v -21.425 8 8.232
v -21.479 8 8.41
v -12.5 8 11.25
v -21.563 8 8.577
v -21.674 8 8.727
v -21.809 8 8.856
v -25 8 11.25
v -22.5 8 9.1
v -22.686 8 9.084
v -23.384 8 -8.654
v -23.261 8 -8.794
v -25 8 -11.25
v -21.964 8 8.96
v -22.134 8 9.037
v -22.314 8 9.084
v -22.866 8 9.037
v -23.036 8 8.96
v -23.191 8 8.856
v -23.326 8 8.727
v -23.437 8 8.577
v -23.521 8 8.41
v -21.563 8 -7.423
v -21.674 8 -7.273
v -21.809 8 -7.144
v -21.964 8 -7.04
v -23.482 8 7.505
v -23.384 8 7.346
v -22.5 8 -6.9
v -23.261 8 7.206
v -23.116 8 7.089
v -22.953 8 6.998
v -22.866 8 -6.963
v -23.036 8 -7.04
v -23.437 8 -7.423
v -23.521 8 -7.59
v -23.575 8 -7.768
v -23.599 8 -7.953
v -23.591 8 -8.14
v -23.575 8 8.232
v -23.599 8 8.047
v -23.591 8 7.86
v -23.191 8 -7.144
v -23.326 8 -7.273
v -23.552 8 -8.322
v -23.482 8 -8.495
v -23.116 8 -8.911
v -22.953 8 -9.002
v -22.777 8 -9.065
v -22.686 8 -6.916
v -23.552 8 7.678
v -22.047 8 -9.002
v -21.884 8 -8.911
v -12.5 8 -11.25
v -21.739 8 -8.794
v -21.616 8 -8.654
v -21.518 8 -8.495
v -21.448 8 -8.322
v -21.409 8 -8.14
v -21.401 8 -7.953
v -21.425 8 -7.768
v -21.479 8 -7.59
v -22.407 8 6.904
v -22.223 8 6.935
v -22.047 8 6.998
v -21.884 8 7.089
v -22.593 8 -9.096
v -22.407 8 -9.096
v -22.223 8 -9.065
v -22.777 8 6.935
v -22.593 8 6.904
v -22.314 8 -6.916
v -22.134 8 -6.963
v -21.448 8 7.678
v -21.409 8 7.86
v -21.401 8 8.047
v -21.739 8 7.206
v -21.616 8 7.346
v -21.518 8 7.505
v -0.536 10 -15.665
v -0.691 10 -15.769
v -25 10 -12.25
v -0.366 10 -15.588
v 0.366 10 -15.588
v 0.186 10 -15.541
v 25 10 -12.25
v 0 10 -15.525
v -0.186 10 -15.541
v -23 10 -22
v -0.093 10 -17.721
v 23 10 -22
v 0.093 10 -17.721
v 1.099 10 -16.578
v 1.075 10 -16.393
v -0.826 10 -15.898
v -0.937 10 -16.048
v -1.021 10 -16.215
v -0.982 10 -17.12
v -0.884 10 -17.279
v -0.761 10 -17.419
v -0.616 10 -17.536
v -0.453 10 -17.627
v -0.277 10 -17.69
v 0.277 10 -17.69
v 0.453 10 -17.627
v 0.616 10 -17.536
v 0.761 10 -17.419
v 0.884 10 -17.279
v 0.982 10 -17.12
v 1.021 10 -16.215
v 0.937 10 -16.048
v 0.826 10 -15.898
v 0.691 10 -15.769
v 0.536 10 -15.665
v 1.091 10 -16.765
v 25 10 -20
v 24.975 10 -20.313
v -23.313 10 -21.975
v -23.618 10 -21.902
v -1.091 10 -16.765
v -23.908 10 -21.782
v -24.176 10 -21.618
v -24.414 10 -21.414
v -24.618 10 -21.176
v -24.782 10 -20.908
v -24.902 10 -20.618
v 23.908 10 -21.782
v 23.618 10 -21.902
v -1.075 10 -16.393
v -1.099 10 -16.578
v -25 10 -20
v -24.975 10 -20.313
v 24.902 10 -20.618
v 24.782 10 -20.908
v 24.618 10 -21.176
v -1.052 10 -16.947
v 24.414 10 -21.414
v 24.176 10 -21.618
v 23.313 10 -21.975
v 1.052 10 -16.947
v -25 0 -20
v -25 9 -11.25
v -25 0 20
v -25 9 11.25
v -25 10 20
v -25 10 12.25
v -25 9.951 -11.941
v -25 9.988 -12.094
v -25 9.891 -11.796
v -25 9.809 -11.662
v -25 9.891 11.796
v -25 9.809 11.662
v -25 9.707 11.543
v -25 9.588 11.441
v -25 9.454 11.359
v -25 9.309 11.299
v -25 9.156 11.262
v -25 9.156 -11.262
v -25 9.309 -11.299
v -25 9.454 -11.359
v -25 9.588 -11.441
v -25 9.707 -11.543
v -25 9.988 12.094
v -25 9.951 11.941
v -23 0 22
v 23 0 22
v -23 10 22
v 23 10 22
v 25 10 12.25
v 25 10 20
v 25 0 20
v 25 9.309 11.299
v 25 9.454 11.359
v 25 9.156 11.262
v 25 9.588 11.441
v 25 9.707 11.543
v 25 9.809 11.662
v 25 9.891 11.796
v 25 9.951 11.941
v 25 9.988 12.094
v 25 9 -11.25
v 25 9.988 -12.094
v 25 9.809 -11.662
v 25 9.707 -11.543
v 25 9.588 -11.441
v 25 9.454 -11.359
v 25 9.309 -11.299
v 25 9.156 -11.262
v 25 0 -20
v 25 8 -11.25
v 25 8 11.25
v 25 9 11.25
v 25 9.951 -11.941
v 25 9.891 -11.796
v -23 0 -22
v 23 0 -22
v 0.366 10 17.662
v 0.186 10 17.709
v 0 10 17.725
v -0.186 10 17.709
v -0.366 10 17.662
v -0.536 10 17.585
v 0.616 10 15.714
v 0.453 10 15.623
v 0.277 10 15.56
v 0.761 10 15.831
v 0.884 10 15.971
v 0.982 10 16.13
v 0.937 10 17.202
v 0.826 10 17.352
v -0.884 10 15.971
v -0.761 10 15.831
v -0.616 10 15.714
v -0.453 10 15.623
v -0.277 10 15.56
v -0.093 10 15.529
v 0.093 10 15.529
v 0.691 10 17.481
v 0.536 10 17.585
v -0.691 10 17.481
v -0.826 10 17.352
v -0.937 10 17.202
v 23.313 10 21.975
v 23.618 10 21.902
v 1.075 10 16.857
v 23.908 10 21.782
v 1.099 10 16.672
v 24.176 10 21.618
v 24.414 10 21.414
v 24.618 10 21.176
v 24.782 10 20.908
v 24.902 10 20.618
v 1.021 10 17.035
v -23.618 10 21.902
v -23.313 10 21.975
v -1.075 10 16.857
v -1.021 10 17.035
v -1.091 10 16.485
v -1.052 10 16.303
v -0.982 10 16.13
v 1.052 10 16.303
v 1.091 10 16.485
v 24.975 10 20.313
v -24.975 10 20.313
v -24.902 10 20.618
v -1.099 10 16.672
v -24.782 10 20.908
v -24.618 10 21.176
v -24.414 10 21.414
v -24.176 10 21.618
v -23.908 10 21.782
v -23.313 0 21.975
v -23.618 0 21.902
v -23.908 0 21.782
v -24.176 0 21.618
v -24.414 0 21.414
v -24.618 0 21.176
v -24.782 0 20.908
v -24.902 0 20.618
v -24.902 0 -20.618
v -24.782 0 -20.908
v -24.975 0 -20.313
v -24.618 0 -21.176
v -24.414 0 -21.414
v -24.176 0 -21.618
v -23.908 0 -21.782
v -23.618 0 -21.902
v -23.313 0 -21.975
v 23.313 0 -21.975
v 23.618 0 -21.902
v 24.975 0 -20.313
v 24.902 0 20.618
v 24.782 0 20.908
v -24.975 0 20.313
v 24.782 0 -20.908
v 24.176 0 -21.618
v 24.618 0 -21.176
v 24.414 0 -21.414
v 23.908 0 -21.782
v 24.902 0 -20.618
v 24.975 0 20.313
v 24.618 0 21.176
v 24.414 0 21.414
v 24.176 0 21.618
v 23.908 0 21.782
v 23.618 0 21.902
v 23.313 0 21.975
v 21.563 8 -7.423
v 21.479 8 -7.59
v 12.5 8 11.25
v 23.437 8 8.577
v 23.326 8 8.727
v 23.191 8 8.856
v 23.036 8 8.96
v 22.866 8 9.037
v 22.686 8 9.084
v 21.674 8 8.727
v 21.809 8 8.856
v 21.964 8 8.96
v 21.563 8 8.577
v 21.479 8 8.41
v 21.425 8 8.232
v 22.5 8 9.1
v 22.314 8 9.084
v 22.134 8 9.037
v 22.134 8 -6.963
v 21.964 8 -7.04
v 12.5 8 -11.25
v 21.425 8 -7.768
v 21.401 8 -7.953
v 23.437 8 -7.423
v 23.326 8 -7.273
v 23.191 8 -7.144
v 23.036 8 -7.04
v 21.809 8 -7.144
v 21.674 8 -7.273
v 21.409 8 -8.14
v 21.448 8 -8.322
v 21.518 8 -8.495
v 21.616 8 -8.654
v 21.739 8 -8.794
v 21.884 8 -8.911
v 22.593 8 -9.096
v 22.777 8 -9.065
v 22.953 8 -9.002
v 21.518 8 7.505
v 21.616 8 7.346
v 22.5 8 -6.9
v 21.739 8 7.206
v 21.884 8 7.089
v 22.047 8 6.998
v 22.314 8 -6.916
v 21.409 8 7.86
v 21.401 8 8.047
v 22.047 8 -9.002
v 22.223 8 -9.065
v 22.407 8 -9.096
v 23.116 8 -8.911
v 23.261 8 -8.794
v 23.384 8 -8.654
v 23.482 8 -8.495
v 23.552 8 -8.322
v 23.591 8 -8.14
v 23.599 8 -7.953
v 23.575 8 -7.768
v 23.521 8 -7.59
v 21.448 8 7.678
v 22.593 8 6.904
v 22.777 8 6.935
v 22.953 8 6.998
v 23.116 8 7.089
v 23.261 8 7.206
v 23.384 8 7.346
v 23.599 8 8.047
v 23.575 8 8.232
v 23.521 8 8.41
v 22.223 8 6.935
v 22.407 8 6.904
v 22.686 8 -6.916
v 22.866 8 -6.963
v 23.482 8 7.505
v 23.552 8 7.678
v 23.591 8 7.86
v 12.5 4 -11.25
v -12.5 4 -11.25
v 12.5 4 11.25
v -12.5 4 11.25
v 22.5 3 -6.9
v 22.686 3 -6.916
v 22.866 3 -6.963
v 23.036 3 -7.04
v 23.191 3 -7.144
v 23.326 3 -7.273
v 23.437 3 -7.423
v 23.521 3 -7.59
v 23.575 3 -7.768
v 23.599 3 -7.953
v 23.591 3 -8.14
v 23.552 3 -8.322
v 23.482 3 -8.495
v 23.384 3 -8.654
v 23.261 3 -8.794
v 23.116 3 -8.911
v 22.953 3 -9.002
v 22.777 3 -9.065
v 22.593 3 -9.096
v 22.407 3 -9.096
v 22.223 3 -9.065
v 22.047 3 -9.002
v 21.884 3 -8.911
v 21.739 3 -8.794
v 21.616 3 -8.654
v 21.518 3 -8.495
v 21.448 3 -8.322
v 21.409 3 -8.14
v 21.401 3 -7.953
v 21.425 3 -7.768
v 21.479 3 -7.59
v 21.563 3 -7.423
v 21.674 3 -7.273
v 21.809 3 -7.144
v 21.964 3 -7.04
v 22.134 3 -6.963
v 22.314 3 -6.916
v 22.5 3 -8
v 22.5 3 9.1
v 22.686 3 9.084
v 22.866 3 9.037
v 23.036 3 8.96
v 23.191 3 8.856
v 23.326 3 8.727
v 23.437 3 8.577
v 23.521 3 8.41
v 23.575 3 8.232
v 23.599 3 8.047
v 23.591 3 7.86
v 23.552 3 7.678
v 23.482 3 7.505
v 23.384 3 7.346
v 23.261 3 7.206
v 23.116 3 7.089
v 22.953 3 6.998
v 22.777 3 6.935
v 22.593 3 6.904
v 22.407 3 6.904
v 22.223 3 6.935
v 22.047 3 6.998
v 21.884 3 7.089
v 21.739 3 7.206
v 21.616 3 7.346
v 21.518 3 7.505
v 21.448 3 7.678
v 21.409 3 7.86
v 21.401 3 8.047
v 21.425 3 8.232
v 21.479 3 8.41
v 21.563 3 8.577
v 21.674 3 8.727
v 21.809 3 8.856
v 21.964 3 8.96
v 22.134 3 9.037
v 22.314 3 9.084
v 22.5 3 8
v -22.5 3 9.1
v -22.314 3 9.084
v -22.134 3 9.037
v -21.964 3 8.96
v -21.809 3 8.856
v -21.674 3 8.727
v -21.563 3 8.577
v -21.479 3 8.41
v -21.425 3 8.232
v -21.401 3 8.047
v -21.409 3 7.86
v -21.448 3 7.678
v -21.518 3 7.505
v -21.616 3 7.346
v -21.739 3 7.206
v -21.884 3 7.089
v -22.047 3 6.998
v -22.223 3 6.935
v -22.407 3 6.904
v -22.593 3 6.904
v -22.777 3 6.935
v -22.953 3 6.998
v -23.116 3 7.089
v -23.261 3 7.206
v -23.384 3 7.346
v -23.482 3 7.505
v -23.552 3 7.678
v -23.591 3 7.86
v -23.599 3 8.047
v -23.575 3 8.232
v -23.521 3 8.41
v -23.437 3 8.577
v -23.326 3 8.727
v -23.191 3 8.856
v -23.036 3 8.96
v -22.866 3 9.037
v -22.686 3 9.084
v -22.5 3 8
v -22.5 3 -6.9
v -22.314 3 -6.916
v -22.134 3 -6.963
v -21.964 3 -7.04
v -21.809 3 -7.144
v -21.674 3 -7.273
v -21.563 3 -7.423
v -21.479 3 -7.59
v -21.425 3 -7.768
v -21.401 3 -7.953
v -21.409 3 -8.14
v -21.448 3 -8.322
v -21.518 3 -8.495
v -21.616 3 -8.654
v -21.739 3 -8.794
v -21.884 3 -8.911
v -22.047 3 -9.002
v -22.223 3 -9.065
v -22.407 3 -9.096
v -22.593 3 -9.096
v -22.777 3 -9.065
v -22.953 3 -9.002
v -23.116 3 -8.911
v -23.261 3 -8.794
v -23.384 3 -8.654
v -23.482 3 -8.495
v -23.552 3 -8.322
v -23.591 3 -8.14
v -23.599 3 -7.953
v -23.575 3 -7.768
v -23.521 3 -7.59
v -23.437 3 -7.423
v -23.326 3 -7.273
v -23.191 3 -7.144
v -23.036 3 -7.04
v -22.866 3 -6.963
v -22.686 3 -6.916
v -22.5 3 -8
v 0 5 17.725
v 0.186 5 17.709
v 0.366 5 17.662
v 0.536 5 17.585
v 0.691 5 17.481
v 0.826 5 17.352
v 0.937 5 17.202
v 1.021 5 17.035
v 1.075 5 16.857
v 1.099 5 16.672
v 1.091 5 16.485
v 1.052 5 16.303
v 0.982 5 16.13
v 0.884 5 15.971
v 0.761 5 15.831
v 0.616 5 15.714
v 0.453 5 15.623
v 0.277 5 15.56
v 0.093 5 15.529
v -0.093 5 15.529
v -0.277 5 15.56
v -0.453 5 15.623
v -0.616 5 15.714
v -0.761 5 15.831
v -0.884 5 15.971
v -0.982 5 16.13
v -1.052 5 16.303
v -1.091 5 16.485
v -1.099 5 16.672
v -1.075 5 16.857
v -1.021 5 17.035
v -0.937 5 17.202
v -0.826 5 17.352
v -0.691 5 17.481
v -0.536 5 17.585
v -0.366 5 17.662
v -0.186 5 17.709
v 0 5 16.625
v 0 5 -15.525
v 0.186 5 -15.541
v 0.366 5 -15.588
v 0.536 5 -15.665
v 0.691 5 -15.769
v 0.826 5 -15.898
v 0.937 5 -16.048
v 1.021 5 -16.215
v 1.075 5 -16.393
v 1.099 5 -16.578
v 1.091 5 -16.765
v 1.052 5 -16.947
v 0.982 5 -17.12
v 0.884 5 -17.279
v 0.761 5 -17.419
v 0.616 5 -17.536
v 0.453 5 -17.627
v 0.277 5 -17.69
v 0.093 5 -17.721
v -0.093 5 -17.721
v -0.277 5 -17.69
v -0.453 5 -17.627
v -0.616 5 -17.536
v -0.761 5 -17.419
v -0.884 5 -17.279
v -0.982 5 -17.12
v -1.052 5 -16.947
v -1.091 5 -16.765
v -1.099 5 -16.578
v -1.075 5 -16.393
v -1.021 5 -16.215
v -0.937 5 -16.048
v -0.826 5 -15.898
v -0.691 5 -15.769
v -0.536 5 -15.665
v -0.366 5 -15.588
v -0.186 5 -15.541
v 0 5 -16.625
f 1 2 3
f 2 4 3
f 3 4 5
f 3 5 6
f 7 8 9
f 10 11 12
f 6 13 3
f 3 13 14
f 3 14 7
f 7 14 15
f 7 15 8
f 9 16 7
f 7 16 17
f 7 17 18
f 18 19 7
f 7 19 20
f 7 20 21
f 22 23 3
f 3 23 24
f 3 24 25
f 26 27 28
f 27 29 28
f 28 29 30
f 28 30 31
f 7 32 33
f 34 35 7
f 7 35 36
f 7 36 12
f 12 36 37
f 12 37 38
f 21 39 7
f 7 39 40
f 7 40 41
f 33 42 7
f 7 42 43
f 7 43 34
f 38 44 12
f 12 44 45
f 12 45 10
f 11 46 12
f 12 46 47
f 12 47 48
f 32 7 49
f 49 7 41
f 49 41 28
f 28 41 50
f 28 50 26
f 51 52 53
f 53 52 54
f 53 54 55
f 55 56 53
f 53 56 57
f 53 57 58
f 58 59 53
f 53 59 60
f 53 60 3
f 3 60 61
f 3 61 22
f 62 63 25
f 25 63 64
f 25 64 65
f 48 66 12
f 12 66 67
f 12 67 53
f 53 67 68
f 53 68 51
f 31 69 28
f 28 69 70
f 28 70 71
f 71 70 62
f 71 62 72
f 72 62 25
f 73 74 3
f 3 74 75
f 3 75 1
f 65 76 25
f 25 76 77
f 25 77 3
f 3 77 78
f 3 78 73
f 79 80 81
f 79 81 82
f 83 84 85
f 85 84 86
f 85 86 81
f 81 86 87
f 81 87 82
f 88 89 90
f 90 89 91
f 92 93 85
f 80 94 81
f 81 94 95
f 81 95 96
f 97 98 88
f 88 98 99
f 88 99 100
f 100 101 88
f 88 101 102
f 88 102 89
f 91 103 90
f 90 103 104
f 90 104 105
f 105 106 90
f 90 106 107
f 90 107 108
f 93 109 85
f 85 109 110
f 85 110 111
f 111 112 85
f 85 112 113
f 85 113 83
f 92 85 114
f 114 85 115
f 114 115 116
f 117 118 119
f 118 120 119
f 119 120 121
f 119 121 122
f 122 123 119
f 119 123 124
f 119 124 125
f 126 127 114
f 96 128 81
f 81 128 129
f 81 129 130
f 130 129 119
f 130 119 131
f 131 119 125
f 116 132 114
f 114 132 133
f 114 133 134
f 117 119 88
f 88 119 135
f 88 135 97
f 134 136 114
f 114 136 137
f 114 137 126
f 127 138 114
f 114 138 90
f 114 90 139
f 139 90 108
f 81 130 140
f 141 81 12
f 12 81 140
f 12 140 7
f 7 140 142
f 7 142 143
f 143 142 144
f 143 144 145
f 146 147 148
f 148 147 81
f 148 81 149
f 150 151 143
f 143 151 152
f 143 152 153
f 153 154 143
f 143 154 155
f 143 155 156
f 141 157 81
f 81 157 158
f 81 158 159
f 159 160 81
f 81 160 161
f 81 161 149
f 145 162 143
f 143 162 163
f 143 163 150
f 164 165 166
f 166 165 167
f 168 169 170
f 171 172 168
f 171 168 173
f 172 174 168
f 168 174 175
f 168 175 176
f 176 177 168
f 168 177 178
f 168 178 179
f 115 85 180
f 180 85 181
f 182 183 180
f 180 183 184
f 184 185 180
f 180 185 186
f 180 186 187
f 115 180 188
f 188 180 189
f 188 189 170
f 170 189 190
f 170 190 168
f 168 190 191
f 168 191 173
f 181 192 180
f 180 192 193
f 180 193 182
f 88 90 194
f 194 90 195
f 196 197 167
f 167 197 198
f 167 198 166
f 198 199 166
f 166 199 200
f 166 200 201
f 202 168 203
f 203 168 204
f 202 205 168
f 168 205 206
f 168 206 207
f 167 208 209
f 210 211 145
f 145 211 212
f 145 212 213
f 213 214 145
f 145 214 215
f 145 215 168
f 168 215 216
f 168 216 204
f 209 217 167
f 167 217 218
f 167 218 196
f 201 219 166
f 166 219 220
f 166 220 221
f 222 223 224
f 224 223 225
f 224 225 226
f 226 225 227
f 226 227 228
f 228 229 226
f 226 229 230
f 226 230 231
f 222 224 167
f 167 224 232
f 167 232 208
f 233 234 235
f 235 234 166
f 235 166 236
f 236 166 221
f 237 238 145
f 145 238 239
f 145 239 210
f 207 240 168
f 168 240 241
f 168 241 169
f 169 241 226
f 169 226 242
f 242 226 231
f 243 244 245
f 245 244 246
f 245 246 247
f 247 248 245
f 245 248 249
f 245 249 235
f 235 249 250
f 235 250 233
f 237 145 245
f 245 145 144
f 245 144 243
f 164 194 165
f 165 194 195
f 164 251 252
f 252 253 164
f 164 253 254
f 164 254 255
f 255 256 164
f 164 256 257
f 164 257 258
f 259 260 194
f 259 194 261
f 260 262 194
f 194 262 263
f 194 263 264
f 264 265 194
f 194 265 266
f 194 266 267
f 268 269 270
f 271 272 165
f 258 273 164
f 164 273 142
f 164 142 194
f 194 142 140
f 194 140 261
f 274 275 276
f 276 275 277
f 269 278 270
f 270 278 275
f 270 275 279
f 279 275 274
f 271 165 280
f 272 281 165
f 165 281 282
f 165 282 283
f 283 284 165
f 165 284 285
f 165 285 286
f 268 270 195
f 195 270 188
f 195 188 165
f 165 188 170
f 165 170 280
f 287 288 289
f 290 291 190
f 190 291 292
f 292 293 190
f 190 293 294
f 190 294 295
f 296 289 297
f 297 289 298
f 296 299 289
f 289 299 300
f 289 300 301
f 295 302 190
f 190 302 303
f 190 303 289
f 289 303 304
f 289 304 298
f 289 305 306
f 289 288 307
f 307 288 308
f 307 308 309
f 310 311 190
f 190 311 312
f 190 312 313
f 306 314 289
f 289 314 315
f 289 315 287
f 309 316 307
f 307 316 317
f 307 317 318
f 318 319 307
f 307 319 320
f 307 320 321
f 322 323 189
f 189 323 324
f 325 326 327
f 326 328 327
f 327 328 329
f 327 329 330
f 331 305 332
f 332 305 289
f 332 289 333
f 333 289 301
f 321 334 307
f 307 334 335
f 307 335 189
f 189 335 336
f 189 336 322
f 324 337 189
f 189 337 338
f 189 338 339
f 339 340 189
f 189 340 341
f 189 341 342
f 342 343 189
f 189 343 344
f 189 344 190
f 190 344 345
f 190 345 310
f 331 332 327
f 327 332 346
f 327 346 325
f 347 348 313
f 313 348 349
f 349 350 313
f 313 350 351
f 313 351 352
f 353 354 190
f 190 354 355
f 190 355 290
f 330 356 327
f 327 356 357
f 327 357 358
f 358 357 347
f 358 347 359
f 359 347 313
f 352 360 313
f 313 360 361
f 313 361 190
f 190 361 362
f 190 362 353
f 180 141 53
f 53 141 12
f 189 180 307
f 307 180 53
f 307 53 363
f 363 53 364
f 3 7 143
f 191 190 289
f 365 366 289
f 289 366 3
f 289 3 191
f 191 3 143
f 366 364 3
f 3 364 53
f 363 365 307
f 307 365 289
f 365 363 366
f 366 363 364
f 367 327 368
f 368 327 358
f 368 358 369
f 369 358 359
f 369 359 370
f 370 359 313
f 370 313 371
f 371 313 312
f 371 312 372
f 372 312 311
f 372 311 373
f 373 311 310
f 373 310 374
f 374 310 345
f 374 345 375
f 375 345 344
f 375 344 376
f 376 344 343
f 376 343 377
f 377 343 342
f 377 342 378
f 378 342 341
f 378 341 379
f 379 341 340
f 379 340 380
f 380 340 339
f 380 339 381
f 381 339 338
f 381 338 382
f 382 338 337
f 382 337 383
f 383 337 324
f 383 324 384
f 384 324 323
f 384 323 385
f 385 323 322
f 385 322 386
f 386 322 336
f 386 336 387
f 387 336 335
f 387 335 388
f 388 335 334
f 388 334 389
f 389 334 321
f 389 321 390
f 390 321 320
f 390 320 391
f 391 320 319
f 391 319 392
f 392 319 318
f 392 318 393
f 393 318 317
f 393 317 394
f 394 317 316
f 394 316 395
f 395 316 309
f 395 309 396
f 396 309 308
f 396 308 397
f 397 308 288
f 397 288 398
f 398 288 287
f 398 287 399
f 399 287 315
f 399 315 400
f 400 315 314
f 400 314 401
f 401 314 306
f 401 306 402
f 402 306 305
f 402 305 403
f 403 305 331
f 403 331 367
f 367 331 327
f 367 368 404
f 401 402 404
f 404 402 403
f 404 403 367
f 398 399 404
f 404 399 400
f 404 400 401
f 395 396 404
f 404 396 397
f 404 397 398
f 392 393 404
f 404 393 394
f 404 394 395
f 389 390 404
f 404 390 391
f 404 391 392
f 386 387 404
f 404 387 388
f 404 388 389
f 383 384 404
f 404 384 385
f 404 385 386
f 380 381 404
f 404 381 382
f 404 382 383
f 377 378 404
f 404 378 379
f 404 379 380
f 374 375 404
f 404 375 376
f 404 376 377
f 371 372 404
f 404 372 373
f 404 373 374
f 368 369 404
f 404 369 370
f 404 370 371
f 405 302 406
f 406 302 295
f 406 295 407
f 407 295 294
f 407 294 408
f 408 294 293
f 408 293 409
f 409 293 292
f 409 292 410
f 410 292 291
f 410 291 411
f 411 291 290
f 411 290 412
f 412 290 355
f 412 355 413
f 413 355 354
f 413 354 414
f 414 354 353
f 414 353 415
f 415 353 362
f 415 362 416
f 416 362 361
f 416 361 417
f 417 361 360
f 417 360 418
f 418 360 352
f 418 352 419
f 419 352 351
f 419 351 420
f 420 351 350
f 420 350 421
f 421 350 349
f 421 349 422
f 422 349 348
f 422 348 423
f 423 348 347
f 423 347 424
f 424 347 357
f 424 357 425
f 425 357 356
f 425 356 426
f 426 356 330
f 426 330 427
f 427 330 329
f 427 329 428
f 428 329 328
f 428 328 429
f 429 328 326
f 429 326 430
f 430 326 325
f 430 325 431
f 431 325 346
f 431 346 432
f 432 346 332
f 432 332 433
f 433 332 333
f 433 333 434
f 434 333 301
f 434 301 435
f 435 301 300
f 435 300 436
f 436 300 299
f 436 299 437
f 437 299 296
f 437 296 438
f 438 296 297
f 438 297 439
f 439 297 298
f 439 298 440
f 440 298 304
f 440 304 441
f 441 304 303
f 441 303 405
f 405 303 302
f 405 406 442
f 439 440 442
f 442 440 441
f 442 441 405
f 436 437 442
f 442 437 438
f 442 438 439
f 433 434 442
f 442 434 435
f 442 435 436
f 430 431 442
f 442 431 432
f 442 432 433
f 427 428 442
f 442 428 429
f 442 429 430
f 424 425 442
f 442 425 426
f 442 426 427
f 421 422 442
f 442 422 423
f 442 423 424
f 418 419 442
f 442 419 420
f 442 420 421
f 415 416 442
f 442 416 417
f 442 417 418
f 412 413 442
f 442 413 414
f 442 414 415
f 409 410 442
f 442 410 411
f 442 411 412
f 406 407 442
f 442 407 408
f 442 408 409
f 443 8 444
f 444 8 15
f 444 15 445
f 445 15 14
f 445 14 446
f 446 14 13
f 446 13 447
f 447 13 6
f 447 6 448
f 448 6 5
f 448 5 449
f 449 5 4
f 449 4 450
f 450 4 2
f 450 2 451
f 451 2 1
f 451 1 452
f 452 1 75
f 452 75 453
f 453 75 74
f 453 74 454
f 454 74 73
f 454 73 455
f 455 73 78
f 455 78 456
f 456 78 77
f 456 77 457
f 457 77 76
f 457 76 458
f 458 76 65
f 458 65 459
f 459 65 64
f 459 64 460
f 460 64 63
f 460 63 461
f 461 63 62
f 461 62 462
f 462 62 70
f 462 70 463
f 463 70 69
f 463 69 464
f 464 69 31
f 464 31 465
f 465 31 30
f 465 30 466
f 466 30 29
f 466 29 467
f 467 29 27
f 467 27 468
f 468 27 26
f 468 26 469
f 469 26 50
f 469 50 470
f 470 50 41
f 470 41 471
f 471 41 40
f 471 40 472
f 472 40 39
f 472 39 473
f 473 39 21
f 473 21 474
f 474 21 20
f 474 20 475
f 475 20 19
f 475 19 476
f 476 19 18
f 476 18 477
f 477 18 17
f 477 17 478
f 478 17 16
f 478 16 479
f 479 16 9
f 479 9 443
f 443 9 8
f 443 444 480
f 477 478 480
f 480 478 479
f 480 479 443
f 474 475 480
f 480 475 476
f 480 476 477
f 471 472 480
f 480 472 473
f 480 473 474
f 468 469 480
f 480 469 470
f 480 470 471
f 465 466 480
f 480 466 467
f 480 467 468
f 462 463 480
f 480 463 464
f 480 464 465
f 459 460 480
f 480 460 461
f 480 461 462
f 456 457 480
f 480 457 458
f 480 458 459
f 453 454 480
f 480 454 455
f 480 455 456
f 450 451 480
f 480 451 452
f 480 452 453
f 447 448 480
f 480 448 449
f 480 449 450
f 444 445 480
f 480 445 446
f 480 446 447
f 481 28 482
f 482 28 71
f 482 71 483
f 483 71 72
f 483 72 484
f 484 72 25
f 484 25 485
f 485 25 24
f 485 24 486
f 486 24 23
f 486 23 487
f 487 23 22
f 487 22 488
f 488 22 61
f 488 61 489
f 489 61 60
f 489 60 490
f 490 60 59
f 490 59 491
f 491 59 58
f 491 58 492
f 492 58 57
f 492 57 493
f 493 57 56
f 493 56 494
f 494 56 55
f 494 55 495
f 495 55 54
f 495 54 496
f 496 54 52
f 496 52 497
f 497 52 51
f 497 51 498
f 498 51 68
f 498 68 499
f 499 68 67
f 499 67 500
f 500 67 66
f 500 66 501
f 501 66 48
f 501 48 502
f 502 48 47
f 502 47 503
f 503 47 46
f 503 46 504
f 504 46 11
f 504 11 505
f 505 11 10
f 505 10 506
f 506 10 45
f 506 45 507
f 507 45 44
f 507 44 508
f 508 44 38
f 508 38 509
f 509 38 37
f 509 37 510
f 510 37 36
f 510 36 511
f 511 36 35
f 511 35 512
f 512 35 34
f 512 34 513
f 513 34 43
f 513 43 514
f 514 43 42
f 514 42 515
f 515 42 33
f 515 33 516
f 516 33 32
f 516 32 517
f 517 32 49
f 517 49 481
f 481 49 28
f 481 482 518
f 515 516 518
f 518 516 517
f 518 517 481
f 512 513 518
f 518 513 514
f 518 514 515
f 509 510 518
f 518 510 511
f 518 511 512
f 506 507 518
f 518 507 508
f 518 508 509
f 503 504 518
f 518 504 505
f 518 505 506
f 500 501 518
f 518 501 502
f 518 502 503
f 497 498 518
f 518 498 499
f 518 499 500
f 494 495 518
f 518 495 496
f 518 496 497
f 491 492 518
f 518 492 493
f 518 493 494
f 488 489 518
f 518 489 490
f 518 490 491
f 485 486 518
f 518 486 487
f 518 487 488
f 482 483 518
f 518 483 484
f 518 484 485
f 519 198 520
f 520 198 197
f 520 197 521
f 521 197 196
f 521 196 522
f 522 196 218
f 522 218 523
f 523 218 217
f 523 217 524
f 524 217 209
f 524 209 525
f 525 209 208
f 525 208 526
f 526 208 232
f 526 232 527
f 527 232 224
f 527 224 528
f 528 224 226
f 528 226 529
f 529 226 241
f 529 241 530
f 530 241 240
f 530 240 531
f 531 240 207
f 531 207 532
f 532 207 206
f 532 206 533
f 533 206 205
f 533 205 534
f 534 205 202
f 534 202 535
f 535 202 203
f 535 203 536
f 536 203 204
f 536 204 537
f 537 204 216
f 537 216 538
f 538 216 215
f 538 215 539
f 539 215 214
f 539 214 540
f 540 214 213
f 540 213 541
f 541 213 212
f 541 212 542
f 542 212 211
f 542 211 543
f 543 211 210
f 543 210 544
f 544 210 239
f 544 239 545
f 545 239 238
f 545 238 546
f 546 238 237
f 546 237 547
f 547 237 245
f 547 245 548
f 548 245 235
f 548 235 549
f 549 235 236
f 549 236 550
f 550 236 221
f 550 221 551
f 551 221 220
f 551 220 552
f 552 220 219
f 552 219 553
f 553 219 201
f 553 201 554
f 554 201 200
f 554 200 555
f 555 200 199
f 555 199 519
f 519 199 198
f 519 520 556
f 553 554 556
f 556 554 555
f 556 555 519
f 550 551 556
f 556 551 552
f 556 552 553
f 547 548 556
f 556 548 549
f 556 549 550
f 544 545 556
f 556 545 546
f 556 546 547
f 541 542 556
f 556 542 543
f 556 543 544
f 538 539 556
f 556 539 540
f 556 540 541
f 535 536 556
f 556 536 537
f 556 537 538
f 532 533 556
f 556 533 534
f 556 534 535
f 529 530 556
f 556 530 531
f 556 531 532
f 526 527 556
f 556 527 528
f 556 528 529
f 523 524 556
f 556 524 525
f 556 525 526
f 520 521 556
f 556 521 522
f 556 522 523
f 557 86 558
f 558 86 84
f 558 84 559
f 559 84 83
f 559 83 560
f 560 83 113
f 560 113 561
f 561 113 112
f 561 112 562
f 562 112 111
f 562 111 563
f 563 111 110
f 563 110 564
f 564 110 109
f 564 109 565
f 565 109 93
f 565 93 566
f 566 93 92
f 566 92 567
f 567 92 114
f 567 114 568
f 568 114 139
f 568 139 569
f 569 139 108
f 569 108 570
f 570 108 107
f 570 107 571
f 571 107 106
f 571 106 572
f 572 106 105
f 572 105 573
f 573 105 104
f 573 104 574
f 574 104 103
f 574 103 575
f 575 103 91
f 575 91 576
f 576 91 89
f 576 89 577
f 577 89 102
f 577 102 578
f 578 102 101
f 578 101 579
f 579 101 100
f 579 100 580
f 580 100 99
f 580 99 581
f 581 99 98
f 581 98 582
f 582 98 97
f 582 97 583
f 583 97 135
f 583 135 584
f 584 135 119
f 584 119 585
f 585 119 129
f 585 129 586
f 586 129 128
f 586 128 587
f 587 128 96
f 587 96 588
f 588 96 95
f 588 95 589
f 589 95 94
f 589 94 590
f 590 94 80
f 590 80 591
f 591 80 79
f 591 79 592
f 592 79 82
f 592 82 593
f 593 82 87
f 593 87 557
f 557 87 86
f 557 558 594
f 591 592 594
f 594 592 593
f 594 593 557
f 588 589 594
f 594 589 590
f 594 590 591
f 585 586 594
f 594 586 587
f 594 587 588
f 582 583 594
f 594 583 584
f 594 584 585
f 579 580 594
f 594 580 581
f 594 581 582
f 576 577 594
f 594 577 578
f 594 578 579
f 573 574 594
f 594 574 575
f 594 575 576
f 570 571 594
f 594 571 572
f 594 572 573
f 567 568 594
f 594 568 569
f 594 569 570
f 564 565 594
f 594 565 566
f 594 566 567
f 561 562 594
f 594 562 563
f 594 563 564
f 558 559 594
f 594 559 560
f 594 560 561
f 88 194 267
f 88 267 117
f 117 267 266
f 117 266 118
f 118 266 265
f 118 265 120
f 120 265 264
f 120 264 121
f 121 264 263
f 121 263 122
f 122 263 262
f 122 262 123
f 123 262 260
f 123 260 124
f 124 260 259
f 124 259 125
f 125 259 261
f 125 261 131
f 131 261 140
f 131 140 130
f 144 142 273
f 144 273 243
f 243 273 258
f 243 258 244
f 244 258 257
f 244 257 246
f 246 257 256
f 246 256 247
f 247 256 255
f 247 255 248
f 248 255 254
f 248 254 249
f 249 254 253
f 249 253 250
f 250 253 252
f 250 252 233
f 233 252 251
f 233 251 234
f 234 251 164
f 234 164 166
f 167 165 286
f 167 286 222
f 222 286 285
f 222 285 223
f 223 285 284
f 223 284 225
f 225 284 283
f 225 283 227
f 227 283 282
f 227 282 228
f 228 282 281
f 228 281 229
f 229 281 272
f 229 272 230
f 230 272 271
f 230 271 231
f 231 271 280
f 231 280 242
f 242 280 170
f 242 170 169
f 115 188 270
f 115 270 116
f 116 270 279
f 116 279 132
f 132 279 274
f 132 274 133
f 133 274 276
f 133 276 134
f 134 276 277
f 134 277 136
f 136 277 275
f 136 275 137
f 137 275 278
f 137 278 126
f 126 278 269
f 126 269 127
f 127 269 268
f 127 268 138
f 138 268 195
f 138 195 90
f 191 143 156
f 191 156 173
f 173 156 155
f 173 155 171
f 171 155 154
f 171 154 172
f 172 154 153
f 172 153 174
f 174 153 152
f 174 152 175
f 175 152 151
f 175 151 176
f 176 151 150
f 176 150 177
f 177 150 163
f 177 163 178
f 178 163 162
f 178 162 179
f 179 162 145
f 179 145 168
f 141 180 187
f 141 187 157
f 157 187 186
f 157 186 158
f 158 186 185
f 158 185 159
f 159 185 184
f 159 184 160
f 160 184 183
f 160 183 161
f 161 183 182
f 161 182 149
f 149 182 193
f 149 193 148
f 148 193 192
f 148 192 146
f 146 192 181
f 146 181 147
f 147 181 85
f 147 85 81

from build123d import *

# Parameters (mm, degrees)
CROQUIS1_W              = 50
CROQUIS1_H              = 44
SALIENTE_EXTRUIR1_DEPTH = 10
CROQUIS2_W              = 58
CROQUIS2_H              = 22.5
CORTAR_EXTRUIR2_DEPTH   = 2
CROQUIS3_W              = 25
CROQUIS3_H              = 22.5
CORTAR_EXTRUIR3_DEPTH   = 4
CROQUIS4_R              = 1.1
CORTAR_EXTRUIR4_DEPTH   = 5
CROQUIS5_R              = 1.1
CORTAR_EXTRUIR5_DEPTH   = 5
REDONDEO1_R             = 2
REDONDEO2_R             = 1


with BuildPart() as part:
    # Croquis1 → Saliente-Extruir1 (new body)
    with BuildSketch(Plane(origin=(0, 0, 0), x_dir=(1, 0, 0), z_dir=(0, 1, 0))):
        Rectangle(CROQUIS1_W, CROQUIS1_H)
    extrude(amount=SALIENTE_EXTRUIR1_DEPTH)

    # Croquis2 → Cortar-Extruir2 (cut)
    with BuildSketch(Plane(origin=(0, 10, 0), x_dir=(1, 0, 0), z_dir=(0, 1, 0))):
        Rectangle(CROQUIS2_W, CROQUIS2_H)
    extrude(amount=-CORTAR_EXTRUIR2_DEPTH, mode=Mode.SUBTRACT)

    # Croquis3 → Cortar-Extruir3 (cut)
    with BuildSketch(Plane(origin=(0, 8, 0), x_dir=(1, 0, 0), z_dir=(0, 1, 0))):
        Rectangle(CROQUIS3_W, CROQUIS3_H)
    extrude(amount=-CORTAR_EXTRUIR3_DEPTH, mode=Mode.SUBTRACT)

    # Croquis4 → Cortar-Extruir4 (cut)
    with BuildSketch(Plane(origin=(0, 8, 0), x_dir=(1, 0, 0), z_dir=(0, 1, 0))):
        with Locations(Location((-22.5, 8, 0), (0, 0, 270))):
            Circle(CROQUIS4_R)
        with Locations(Location((-22.5, -8, 0), (0, 0, 270))):
            Circle(CROQUIS4_R)
        with Locations(Location((22.5, 8, 0), (0, 0, 270))):
            Circle(CROQUIS4_R)
        with Locations(Location((22.5, -8, 0), (0, 0, 270))):
            Circle(CROQUIS4_R)
    extrude(amount=-CORTAR_EXTRUIR4_DEPTH, mode=Mode.SUBTRACT)

    # Croquis5 → Cortar-Extruir5 (cut)
    with BuildSketch(Plane(origin=(0, 10, 0), x_dir=(1, 0, 0), z_dir=(0, 1, 0))):
        with Locations(Location((0, 16.625, 0), (0, 0, 270))):
            Circle(CROQUIS5_R)
        with Locations(Location((0, -16.625, 0), (0, 0, 270))):
            Circle(CROQUIS5_R)
    extrude(amount=-CORTAR_EXTRUIR5_DEPTH, mode=Mode.SUBTRACT)

    # Redondeo1
    redondeo1_edges = [part.edges().sort_by_distance(p)[0] for p in [
        (-25, 5, -22),
        (25, 5, -22),
        (25, 5, 22),
        (-25, 5, 22),
    ]]
    fillet(redondeo1_edges, radius=REDONDEO1_R)

    # Redondeo2
    redondeo2_edges = [part.edges().sort_by_distance(p)[0] for p in [
        (0, 10, 11.25),
        (0, 10, -11.25),
    ]]
    fillet(redondeo2_edges, radius=REDONDEO2_R)


solid = part.part
